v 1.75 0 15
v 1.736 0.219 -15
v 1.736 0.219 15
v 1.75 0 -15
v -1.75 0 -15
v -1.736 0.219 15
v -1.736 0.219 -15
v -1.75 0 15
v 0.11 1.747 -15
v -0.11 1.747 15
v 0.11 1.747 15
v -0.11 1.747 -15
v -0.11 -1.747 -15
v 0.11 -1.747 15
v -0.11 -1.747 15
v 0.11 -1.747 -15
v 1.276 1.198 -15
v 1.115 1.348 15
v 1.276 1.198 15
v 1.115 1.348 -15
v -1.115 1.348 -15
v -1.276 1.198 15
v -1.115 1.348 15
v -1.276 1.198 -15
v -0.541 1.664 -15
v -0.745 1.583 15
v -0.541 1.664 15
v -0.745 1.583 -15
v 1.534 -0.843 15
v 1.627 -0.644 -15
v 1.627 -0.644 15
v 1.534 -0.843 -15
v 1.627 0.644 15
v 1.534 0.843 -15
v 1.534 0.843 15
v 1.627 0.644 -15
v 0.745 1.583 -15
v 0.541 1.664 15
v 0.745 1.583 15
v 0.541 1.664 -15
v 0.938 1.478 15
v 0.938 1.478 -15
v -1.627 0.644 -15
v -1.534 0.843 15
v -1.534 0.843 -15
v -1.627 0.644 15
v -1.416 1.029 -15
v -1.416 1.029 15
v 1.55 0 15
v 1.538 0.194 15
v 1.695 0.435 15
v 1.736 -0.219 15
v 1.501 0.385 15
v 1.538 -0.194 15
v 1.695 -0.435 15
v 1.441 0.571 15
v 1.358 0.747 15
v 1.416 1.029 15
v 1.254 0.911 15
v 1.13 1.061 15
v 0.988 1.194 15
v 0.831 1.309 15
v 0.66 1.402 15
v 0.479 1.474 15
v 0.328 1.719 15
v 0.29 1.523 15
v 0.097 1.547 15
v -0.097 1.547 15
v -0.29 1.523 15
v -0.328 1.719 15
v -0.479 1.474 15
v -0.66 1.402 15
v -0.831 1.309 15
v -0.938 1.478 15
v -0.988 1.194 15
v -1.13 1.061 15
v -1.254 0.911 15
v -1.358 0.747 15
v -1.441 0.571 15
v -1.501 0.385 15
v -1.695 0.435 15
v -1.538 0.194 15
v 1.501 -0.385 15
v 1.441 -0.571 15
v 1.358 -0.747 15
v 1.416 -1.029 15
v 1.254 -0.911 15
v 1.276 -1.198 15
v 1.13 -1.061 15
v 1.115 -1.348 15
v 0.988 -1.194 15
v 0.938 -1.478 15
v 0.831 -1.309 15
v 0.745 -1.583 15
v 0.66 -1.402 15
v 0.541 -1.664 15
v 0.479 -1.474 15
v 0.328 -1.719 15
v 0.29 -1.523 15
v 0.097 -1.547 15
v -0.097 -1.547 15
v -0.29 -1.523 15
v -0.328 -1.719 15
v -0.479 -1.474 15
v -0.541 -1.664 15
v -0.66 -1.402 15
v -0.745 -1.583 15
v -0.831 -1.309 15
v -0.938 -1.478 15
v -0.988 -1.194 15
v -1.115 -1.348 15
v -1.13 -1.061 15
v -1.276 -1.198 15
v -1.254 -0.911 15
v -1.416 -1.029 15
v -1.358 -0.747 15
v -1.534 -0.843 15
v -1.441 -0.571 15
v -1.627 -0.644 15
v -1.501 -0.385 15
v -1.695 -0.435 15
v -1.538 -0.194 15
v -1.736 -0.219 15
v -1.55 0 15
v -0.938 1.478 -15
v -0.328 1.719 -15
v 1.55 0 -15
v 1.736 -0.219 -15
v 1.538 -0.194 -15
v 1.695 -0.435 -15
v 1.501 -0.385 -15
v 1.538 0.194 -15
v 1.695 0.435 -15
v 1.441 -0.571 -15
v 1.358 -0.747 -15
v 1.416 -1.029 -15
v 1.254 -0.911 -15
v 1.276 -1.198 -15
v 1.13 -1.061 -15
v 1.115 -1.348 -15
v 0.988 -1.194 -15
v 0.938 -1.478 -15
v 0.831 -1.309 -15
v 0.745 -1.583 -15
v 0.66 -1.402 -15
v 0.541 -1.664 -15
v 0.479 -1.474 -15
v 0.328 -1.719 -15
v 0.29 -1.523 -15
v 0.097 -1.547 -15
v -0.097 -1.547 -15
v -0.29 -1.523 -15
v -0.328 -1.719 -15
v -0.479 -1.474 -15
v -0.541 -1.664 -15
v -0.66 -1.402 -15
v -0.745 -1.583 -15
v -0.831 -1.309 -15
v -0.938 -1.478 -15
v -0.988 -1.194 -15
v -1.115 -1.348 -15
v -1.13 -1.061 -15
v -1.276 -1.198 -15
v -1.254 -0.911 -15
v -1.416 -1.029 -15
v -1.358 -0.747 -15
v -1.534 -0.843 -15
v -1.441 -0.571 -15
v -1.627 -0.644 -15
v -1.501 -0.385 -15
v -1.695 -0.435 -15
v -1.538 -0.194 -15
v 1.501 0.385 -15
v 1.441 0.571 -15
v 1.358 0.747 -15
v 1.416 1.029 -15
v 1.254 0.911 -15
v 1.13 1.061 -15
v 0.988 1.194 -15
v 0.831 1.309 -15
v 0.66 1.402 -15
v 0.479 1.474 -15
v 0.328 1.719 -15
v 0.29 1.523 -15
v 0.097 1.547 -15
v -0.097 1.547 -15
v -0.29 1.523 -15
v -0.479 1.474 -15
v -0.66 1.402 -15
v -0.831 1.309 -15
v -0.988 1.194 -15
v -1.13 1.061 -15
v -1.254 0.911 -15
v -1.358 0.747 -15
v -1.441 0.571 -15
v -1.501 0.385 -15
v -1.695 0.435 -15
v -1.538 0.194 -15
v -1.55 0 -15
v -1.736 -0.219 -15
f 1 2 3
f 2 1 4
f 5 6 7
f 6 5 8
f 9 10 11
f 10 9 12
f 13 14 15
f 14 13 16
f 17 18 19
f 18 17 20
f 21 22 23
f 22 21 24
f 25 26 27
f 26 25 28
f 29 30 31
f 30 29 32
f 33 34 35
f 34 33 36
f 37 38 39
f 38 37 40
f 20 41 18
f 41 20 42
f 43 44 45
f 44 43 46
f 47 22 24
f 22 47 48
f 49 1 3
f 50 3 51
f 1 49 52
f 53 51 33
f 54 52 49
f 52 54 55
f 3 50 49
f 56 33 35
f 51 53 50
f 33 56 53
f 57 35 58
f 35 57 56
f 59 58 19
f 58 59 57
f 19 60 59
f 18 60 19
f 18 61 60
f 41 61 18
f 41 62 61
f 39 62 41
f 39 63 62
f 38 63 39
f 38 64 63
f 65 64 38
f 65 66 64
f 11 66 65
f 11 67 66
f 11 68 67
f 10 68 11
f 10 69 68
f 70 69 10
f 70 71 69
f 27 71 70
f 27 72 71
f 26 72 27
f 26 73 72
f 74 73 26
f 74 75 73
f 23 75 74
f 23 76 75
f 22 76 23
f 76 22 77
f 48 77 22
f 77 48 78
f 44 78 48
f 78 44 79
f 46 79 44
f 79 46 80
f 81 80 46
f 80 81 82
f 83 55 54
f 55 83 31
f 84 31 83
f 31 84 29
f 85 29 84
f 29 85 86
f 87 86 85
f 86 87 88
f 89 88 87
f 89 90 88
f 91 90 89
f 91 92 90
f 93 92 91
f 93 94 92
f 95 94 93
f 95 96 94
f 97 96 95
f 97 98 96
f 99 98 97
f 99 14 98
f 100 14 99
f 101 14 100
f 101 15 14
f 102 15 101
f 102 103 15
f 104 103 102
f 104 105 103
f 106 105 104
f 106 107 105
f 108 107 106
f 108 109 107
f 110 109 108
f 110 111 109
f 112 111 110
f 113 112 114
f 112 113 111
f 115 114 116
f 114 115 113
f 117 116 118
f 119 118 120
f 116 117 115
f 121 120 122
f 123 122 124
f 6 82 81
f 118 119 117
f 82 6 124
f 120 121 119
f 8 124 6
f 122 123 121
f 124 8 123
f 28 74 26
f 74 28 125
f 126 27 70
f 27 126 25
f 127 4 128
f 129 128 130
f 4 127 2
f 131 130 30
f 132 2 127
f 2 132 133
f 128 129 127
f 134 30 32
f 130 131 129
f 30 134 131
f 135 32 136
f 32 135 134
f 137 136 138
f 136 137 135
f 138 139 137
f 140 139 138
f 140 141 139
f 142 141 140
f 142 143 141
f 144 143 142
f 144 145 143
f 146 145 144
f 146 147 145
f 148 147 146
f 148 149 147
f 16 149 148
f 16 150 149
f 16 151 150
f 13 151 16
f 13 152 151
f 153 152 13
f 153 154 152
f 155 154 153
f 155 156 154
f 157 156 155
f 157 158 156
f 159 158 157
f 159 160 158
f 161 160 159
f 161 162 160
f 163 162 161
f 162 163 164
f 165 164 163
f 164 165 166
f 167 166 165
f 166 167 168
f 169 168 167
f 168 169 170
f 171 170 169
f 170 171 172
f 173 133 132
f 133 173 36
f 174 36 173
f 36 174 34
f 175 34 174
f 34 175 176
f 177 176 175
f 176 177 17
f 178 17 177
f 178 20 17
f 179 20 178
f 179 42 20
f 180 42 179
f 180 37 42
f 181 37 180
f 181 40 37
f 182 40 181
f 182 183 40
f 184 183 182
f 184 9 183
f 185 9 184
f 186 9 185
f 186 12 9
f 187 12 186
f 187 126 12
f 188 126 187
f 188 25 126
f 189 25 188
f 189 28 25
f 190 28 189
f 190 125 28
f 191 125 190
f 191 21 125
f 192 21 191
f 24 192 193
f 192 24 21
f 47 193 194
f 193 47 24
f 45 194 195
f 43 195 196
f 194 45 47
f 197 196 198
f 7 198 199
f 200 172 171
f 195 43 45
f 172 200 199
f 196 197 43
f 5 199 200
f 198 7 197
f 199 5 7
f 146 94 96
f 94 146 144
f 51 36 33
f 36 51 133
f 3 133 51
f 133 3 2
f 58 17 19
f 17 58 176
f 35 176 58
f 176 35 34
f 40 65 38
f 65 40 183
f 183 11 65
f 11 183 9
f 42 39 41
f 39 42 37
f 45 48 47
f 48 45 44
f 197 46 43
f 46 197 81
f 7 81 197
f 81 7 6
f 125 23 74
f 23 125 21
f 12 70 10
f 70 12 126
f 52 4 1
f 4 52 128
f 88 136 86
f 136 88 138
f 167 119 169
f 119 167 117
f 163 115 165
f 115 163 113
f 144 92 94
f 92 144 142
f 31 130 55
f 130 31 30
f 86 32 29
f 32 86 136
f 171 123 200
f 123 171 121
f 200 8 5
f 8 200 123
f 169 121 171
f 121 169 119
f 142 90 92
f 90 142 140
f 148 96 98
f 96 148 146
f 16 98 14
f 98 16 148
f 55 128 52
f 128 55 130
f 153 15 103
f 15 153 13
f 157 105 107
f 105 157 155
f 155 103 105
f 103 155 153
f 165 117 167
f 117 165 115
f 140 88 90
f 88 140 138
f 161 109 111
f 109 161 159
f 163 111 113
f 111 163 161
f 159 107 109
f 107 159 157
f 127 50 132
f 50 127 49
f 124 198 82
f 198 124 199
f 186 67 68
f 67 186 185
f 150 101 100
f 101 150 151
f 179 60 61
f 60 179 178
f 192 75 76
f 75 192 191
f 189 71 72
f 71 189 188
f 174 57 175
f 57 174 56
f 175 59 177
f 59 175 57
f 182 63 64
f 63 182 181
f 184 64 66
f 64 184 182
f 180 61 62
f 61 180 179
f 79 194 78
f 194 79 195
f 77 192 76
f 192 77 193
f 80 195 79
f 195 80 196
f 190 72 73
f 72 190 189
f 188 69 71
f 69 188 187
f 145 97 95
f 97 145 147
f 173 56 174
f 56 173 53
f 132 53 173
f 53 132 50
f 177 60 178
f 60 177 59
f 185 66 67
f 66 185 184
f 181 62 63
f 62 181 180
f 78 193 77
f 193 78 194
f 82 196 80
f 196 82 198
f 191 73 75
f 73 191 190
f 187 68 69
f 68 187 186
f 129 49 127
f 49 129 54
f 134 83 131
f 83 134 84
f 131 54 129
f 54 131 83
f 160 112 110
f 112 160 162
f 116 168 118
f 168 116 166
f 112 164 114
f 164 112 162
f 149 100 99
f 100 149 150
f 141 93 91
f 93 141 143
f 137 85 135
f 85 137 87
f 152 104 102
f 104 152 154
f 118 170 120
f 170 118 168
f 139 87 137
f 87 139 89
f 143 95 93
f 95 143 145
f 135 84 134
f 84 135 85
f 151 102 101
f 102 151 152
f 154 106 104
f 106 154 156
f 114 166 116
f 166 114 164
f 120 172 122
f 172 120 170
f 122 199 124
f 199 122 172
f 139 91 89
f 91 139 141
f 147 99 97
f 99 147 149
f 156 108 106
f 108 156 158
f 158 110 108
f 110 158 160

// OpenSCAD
$fn = 50;


difference() {
	union() {
		translate(v = [0, 0, -15.0000000000]) {
			cylinder(h = 30, r = 1.7500000000);
		}
	}
	union() {
		translate(v = [0, 0, -100.0000000000]) {
			cylinder(h = 200, r = 1.5500000000);
		}
	}
}
